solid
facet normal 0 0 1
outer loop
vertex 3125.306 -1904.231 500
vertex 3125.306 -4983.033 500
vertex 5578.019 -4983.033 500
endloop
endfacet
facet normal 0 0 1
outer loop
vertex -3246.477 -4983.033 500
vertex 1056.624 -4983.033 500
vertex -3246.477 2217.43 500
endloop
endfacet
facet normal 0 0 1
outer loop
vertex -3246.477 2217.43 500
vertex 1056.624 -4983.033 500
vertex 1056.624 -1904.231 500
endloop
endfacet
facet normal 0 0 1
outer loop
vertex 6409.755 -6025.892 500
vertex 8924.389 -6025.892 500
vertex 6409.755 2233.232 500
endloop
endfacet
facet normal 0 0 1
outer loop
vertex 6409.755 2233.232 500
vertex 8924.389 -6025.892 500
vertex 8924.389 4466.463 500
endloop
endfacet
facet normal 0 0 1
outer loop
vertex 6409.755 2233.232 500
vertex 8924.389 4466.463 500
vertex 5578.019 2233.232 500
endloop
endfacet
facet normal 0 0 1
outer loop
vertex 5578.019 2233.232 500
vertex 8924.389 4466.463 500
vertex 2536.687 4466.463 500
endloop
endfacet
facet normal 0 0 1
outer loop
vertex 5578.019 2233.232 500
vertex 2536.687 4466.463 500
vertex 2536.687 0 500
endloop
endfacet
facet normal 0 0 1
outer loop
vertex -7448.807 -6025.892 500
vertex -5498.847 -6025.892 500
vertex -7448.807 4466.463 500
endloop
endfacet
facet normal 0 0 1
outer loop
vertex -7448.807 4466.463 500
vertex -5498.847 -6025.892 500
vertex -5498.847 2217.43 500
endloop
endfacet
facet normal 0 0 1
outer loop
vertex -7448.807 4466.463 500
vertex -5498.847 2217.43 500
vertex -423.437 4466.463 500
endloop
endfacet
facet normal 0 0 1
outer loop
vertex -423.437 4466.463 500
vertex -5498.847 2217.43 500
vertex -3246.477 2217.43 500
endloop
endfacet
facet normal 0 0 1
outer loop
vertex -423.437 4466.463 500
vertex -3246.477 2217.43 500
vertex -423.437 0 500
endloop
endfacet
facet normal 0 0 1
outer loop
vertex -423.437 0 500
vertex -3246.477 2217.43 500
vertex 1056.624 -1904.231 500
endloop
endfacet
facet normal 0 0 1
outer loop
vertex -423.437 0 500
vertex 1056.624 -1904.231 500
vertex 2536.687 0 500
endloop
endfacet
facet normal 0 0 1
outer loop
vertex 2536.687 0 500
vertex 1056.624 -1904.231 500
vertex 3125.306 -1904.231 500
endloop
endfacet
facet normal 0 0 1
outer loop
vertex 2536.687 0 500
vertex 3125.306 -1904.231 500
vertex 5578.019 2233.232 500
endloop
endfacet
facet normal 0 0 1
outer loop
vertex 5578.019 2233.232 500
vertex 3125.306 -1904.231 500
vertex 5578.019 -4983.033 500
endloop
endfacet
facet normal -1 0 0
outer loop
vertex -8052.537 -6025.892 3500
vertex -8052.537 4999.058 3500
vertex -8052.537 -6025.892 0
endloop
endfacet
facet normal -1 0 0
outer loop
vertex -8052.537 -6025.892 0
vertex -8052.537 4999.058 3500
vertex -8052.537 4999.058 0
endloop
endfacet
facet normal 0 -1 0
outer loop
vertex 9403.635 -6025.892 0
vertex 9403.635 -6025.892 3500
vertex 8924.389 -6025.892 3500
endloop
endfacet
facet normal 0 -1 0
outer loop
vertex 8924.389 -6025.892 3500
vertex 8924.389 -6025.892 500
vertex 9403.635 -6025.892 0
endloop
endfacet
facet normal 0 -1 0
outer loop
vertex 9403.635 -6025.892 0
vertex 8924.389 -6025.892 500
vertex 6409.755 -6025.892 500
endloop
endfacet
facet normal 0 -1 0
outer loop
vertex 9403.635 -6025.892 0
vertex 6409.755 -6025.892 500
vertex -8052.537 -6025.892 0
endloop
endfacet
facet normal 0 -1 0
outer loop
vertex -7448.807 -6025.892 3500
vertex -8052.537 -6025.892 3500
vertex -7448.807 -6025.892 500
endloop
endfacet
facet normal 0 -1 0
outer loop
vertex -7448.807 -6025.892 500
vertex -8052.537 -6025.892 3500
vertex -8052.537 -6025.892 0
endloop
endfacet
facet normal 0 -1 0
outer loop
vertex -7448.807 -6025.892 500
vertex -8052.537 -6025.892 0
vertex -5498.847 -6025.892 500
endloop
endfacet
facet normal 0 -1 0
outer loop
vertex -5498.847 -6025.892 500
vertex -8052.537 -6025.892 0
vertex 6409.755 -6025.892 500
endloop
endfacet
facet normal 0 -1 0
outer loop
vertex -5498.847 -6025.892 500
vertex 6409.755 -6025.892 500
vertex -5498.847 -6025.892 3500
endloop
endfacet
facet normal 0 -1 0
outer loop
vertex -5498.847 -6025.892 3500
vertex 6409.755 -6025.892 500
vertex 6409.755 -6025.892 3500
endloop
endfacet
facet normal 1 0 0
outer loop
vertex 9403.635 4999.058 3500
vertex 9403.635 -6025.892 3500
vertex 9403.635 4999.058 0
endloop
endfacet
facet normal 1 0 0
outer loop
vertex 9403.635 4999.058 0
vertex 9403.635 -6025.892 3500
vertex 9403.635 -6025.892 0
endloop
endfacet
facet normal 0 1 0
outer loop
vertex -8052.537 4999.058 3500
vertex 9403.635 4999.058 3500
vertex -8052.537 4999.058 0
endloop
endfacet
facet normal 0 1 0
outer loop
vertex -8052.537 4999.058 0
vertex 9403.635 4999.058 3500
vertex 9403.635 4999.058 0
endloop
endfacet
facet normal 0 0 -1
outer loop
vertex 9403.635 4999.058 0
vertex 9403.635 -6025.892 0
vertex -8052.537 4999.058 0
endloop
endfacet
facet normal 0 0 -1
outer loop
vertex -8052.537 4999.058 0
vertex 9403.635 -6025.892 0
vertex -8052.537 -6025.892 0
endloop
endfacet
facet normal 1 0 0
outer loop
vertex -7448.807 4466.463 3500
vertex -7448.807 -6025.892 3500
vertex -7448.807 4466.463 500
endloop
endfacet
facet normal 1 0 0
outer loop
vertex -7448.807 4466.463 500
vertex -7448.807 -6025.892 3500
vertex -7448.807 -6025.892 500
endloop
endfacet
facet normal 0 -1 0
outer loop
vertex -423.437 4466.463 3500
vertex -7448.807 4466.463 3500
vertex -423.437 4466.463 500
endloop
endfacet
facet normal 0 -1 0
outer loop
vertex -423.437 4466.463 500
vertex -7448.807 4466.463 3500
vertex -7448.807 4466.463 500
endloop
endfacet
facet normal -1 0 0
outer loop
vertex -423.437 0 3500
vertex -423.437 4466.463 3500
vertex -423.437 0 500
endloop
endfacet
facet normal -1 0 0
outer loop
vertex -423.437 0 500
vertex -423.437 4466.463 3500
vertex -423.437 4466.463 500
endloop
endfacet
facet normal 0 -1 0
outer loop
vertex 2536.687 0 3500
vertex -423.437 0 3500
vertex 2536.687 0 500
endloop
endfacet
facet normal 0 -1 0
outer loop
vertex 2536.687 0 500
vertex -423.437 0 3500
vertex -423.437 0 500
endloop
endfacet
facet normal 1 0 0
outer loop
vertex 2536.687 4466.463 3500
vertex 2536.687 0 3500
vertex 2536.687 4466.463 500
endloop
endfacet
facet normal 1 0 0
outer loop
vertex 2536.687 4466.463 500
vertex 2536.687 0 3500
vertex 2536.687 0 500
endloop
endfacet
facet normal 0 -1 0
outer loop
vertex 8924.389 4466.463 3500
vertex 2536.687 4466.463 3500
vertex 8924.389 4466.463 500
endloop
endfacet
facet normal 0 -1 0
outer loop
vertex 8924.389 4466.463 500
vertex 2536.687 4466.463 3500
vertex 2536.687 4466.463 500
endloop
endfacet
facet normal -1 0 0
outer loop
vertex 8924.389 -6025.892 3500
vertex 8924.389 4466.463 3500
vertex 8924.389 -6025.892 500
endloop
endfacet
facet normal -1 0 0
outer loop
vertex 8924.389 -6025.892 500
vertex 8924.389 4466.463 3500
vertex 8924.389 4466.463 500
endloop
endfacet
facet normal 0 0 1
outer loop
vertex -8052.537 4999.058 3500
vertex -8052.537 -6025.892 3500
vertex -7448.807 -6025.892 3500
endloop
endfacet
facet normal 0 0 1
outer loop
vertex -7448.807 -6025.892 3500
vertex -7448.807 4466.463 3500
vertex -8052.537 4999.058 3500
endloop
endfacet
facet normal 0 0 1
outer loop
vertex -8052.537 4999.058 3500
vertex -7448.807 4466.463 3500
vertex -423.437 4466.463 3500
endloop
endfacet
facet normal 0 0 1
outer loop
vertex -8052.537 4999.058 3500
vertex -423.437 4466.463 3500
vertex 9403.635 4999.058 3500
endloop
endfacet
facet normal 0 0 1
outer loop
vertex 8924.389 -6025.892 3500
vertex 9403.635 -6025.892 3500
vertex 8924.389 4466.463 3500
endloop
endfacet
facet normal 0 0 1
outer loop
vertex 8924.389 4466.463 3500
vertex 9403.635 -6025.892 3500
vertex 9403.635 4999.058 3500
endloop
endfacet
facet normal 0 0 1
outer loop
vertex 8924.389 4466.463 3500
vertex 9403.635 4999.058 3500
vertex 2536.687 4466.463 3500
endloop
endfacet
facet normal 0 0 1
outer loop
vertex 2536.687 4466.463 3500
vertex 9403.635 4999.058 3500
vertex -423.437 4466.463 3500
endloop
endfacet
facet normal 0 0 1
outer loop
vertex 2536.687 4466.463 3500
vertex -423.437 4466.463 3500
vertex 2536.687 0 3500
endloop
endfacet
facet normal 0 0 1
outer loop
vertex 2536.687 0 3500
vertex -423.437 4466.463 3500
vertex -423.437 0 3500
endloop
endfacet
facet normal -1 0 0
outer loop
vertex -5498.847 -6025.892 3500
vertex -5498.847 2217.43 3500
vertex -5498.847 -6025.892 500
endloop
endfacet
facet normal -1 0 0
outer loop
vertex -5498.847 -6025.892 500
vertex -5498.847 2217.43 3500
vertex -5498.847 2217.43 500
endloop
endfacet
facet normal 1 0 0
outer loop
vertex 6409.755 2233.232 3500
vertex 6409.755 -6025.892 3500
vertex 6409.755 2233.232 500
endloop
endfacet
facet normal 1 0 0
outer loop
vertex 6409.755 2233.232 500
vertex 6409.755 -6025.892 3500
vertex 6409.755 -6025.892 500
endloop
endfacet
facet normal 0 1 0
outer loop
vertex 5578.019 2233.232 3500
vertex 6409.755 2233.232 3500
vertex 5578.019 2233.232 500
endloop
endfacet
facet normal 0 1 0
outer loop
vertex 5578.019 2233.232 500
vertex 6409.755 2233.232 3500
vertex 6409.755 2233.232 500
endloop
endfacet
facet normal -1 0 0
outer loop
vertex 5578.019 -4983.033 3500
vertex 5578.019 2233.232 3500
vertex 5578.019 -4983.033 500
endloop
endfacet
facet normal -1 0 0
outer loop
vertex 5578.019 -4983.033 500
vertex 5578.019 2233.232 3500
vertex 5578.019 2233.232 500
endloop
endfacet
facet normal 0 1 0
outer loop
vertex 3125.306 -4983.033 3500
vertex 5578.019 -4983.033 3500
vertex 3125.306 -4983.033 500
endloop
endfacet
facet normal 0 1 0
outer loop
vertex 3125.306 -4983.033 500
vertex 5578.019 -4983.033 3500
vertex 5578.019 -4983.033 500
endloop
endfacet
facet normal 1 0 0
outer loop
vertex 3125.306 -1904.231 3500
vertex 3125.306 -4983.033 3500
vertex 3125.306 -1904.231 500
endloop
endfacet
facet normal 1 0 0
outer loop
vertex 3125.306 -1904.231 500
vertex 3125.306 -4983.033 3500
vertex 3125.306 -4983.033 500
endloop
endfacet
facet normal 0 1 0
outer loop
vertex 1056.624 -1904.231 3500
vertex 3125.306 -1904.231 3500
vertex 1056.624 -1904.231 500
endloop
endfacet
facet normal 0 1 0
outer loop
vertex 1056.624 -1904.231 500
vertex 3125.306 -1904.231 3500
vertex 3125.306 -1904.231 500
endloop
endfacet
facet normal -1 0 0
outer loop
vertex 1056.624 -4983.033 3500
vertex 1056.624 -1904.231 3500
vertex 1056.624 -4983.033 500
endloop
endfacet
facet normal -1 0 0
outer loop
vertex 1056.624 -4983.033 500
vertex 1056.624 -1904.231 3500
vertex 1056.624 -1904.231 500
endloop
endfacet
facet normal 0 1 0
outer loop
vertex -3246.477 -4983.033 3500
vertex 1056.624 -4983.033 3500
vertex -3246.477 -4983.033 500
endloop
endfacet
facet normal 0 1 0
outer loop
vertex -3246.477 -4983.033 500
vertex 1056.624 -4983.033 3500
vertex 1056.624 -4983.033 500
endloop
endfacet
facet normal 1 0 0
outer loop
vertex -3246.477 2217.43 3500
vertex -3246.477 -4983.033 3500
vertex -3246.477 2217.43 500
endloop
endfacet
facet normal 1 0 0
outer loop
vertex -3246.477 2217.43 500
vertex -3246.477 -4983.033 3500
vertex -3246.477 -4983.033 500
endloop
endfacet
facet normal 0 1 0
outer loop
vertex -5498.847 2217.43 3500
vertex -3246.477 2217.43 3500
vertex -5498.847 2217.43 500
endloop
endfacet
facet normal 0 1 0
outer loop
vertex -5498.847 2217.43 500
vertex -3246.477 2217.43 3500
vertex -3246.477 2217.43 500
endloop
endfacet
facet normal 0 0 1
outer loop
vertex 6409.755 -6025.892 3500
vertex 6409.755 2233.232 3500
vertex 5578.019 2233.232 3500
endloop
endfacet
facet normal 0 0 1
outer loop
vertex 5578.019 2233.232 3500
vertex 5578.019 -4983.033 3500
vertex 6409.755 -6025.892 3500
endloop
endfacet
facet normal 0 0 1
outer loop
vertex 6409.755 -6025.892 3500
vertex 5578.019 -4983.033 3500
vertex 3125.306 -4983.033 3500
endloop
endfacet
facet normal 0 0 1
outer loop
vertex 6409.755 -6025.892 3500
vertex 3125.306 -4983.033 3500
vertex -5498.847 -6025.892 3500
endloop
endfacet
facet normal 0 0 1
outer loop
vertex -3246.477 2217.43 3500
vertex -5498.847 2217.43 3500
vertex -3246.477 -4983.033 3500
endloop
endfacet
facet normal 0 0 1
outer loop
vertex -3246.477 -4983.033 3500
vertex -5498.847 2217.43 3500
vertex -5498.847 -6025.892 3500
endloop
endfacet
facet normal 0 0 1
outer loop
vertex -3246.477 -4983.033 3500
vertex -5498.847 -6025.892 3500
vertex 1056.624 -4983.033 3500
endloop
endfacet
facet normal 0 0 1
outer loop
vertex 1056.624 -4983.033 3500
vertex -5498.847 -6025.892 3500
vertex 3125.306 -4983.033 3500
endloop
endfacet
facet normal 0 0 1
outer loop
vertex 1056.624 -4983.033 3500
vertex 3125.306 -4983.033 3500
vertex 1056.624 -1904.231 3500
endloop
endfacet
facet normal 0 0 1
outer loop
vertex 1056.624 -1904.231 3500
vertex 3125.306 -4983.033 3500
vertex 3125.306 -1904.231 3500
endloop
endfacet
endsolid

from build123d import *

# Parameters (mm, degrees)
SKETCH1_W           = 17456.171444087
SKETCH1_H           = 11024.95038574
BOSS_EXTRUDE1_DEPTH = 500
BOSS_EXTRUDE2_DEPTH = 3000


with BuildPart() as part:
    # Sketch1 → Boss-Extrude1 (new body)
    with BuildSketch(Plane.XY):
        with Locations((675.548430499, -513.416807179)):
            Rectangle(SKETCH1_W, SKETCH1_H)
    extrude(amount=BOSS_EXTRUDE1_DEPTH)

    # Sketch2 → Boss-Extrude2 (add)
    with BuildSketch(Plane.XY.offset(500)):
        Polygon((-8052.537291545, -6025.892000049), (-7448.807383296, -6025.892000049), (-7448.807383296, 4466.462823429), (-423.437109904, 4466.462823429), (-423.437109904, 0), (2536.686791274, 0), (2536.686791274, 4466.462823429), (8924.388706678, 4466.462823429), (8924.388706678, -6025.892000049), (9403.634152542, -6025.892000049), (9403.634152542, 4466.462823429), (9403.634152542, 4999.058385691), (-7448.807383296, 4999.058385691), (-8052.537291545, 4999.058385691), align=None)
        Polygon((3125.306231796, -4983.032925661), (5578.019741258, -4983.032925661), (5578.019741258, 2233.231411715), (6409.754725538, 2233.231411715), (6409.754725538, -4983.032925661), (6409.754725538, -6025.892000049), (-3246.47736203, -6025.892000049), (-5498.847673456, -6025.892000049), (-5498.847673456, 2217.430041705), (-3246.47736203, 2217.430041705), (-3246.47736203, -4983.032925661), (1056.624840685, -4983.032925661), (1056.624840685, -1904.230979172), (3125.306231796, -1904.230979172), align=None)
    extrude(amount=BOSS_EXTRUDE2_DEPTH)


solid = part.part
